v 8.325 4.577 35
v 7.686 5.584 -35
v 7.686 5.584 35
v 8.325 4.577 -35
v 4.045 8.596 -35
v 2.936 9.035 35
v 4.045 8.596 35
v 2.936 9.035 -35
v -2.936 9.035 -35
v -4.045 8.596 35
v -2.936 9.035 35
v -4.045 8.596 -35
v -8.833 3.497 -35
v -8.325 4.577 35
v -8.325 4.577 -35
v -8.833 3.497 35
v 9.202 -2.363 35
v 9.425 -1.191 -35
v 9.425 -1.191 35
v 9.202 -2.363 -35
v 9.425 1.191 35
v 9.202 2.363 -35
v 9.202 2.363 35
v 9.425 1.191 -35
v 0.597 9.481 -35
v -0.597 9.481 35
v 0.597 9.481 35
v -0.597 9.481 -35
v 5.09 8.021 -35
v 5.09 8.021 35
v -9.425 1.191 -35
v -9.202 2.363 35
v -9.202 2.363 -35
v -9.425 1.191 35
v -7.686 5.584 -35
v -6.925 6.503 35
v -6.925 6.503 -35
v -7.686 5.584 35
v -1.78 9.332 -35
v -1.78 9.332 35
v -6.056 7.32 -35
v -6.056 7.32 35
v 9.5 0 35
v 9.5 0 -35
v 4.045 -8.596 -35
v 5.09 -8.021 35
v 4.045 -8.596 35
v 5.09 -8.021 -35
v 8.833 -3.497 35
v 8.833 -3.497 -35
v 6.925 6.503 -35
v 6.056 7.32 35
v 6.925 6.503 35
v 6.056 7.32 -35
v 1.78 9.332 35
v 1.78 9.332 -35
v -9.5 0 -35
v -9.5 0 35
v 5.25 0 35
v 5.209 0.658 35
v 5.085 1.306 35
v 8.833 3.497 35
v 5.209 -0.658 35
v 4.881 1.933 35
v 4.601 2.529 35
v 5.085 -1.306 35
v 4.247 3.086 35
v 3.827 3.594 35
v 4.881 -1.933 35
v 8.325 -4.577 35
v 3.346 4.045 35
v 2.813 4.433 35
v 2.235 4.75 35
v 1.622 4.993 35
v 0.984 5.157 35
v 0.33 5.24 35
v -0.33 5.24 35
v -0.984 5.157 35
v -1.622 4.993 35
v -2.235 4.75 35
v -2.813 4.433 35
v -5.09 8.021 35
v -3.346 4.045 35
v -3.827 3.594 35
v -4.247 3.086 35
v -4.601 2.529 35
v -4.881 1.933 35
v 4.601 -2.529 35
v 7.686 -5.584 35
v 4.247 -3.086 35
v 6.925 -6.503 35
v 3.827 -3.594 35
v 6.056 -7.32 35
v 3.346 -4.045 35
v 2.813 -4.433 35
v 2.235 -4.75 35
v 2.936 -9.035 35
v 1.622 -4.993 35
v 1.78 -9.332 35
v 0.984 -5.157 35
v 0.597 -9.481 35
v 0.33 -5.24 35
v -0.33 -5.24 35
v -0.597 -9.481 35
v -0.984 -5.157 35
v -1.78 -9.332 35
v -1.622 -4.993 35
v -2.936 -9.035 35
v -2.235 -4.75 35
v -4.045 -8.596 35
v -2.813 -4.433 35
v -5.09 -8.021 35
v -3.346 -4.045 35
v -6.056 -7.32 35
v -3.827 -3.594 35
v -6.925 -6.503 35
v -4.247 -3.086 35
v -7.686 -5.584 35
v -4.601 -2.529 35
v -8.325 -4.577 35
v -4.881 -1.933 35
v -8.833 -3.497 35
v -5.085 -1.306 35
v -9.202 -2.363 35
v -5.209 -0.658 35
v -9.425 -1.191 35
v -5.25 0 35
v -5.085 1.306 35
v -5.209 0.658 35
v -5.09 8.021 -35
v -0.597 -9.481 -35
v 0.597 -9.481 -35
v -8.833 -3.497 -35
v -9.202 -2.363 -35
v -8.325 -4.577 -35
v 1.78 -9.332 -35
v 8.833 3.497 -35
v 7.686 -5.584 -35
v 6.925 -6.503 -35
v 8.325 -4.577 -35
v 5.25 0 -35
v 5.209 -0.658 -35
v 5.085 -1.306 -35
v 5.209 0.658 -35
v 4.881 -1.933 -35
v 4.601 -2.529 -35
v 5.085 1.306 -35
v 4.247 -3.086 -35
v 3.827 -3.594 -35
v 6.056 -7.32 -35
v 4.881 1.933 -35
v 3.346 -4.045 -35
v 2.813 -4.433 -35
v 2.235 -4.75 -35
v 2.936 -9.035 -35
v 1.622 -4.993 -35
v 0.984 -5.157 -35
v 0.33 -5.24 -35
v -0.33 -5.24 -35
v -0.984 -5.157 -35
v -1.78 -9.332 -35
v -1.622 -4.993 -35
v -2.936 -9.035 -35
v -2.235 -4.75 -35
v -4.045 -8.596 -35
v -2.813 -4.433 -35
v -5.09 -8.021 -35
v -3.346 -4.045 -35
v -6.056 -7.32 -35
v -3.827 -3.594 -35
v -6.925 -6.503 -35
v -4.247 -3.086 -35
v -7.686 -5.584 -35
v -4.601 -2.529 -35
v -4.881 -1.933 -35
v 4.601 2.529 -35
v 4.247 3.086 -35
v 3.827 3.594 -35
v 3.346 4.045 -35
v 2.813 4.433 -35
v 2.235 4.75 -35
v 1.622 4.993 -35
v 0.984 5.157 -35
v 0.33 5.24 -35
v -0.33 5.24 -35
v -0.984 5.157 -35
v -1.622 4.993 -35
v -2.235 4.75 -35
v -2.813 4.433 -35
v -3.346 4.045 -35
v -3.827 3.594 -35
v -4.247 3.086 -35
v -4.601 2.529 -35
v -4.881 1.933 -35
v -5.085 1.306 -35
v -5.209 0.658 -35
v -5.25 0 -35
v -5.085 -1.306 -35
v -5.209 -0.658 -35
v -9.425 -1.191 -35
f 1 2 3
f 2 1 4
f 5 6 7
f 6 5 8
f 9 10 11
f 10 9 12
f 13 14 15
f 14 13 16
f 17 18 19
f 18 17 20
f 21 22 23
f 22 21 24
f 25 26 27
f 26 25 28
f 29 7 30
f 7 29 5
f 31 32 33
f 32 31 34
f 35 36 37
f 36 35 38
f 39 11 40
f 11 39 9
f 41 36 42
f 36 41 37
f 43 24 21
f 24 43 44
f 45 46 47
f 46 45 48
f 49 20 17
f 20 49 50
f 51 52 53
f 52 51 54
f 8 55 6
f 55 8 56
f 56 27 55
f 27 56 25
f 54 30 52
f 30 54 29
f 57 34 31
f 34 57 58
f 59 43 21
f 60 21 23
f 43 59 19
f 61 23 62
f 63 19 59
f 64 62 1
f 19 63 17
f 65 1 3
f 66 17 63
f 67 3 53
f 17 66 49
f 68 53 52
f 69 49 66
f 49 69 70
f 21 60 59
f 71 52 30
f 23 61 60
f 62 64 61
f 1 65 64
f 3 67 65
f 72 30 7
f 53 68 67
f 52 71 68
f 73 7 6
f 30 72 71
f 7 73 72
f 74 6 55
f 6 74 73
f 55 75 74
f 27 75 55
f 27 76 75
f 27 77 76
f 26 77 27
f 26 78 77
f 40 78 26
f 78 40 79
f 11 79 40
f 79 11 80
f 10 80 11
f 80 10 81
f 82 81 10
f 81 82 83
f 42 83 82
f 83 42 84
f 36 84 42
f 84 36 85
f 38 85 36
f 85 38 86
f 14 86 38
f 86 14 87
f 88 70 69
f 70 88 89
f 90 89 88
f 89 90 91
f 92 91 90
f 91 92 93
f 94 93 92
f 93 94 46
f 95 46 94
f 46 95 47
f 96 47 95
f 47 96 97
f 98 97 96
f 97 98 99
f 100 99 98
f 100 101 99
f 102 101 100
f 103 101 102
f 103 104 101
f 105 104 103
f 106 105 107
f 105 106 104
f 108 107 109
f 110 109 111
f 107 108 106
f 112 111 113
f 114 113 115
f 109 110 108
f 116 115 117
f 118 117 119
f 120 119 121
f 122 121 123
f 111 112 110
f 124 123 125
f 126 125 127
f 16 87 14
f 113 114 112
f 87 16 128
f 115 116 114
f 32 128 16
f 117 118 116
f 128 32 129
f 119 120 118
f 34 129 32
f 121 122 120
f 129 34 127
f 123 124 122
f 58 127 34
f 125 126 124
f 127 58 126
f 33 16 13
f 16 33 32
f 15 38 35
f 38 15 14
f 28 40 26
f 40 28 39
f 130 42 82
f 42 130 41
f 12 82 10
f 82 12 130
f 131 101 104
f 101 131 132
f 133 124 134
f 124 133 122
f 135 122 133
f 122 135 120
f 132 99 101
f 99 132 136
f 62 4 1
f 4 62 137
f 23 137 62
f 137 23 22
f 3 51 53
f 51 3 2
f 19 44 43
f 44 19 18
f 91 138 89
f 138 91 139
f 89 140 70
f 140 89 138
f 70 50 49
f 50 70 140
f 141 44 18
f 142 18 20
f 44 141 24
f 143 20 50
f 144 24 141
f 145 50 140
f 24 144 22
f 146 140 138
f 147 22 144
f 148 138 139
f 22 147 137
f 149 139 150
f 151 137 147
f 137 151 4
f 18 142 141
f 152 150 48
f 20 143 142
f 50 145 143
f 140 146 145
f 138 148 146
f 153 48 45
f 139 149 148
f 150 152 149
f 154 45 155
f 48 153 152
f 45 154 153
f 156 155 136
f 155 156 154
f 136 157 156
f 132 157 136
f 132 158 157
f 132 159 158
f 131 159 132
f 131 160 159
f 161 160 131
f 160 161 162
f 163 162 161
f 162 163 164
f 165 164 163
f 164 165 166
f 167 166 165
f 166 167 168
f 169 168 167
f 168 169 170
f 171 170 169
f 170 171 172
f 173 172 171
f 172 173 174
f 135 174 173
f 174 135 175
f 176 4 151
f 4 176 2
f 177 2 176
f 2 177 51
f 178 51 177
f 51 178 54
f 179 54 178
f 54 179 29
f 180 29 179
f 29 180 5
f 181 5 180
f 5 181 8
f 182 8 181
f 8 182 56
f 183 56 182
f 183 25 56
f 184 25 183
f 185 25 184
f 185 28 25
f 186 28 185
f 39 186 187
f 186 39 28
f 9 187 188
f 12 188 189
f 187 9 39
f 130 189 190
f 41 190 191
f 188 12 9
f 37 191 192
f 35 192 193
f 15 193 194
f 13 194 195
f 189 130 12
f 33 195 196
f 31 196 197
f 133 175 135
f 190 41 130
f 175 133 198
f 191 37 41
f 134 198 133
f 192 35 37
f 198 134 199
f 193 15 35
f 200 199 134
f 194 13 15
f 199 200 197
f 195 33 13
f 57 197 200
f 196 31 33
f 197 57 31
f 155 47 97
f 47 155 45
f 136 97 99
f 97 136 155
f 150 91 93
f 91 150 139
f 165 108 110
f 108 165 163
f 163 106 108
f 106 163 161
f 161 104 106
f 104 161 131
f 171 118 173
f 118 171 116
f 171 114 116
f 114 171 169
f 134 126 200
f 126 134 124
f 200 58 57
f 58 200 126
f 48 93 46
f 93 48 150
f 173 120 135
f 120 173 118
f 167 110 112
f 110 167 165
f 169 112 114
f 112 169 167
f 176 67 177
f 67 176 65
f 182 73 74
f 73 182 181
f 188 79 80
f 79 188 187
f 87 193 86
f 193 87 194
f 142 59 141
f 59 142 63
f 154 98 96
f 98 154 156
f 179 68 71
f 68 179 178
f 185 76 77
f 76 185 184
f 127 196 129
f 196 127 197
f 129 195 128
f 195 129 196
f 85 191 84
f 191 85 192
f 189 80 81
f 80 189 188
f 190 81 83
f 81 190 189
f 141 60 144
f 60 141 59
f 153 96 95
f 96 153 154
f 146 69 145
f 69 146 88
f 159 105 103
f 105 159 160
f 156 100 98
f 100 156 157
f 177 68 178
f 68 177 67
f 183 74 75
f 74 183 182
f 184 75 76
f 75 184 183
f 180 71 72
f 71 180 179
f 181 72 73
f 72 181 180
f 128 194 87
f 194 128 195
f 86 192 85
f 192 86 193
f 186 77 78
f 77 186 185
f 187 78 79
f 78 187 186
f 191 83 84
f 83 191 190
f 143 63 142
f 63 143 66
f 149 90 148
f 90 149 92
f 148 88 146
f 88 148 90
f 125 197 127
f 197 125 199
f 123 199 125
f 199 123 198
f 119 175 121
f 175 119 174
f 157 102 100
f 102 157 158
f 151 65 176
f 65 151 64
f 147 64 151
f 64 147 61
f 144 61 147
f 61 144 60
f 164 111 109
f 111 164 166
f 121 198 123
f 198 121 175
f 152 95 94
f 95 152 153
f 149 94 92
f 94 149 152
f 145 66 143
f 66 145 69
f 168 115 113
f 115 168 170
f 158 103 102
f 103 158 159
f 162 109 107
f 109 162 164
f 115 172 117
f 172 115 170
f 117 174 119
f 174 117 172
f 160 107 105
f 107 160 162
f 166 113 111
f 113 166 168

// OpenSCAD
$fn = 50;


difference() {
	union() {
		translate(v = [0, 0, -35.0000000000]) {
			cylinder(h = 70, r = 9.5000000000);
		}
	}
	union() {
		translate(v = [0, 0, -100.0000000000]) {
			cylinder(h = 200, r = 5.2500000000);
		}
	}
}
